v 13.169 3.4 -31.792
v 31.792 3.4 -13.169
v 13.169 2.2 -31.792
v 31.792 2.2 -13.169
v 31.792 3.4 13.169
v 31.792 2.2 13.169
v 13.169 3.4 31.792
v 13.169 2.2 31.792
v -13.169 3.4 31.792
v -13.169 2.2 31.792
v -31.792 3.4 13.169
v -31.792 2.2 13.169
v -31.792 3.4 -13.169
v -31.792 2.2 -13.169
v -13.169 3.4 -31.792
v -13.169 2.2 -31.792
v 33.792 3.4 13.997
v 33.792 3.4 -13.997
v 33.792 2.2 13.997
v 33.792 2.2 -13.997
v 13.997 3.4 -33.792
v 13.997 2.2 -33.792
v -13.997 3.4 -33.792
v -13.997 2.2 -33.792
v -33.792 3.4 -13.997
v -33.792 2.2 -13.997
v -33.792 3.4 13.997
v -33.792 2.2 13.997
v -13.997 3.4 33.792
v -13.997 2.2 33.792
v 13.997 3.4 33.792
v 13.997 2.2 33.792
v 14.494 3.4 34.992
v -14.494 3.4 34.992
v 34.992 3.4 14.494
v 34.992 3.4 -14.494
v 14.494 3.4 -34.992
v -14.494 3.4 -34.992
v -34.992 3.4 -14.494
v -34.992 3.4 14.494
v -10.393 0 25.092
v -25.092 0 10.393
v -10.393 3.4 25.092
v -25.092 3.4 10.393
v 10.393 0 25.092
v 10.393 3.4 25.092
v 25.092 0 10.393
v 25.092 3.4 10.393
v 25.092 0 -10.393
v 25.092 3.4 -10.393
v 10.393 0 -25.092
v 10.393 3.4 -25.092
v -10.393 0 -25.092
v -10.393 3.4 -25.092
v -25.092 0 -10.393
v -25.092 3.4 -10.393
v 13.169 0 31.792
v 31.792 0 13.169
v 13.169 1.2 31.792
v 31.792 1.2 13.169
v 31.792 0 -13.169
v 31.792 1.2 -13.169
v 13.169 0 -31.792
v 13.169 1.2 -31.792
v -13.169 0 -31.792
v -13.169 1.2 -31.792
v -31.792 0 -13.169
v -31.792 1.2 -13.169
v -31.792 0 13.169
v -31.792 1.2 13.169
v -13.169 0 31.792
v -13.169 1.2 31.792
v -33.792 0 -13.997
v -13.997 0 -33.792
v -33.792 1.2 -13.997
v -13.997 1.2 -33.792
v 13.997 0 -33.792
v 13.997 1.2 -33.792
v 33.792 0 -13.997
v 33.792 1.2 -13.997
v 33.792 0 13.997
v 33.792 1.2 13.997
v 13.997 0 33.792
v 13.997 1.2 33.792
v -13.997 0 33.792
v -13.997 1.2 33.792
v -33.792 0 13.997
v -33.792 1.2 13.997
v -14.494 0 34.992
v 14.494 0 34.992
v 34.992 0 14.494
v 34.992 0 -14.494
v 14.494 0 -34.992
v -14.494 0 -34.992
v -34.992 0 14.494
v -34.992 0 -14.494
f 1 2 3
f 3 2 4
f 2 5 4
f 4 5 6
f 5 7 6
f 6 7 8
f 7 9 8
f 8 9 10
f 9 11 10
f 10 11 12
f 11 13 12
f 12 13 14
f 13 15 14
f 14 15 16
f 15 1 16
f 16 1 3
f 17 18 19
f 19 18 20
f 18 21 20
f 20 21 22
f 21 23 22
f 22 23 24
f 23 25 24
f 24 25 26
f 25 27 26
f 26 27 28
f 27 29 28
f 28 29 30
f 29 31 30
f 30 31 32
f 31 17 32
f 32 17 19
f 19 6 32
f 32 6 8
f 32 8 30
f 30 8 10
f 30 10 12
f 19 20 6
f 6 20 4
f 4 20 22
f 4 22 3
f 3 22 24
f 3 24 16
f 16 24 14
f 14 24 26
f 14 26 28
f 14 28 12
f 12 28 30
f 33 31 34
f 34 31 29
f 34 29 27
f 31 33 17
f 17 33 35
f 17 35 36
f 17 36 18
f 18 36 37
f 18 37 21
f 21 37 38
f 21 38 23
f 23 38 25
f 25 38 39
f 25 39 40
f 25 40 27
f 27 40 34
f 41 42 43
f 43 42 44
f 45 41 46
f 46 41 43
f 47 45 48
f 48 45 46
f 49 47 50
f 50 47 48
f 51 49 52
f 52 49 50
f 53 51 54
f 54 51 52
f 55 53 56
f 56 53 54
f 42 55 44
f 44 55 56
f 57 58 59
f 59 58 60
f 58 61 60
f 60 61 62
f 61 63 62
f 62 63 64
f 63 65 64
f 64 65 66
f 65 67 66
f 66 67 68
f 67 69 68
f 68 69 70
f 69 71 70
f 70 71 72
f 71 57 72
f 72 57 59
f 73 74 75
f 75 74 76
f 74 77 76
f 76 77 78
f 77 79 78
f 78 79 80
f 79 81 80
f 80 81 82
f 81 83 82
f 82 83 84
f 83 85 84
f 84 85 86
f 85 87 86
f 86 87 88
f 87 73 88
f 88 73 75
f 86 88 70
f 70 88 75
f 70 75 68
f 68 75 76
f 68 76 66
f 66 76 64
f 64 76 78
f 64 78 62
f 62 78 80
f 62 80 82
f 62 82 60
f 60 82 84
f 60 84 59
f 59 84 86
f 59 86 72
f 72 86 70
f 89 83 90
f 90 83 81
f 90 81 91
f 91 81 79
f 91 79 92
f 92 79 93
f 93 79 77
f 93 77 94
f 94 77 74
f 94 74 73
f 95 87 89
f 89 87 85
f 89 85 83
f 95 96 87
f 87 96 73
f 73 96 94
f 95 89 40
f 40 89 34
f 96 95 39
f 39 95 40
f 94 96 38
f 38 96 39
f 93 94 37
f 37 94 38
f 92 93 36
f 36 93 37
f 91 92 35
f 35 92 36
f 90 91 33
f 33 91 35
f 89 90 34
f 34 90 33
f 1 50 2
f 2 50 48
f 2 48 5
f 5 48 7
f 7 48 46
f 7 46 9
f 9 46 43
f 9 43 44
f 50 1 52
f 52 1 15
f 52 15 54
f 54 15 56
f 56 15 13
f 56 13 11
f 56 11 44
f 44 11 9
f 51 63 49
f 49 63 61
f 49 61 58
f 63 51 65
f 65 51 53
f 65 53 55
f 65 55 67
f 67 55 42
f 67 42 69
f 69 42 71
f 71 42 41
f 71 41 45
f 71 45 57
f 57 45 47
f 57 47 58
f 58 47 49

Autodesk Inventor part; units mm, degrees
ref_plane "YZ Plane" through (0, 0, 0) normal (1, 0, 0) x (0, 1, 0)
ref_plane "XZ Plane" through (0, 0, 0) normal (0, 1, 0) x (-1, 0, 0)
ref_plane "XY Plane" through (0, 0, 0) normal (0, 0, 1) x (1, 0, 0)
sketch "스케치1" plane through (0, 0, 0) normal (0, 1, 0) x (-1, 0, 0)
  line L0 (-32.5919, 13.5) -> (-13.5, 32.5919)
  line L1 (-13.5, 32.5919) -> (13.5, 32.5919)
  line L2 (13.5, 32.5919) -> (32.5919, 13.5)
  line L3 (32.5919, 13.5) -> (32.5919, -13.5)
  line L4 (32.5919, -13.5) -> (13.5, -32.5919)
  line L5 (13.5, -32.5919) -> (-13.5, -32.5919)
  line L6 (-13.5, -32.5919) -> (-32.5919, -13.5)
  line L7 (-32.5919, -13.5) -> (-32.5919, 13.5)
  line L8 (34.9919, 14.4941) -> (34.9919, -14.4941)
  line L9 (34.9919, -14.4941) -> (14.4941, -34.9919)
  line L10 (14.4941, -34.9919) -> (-14.4941, -34.9919)
  line L11 (-14.4941, -34.9919) -> (-34.9919, -14.4941)
  line L12 (-34.9919, -14.4941) -> (-34.9919, 14.4941)
  line L13 (-34.9919, 14.4941) -> (-14.4941, 34.9919)
  line L14 (-14.4941, 34.9919) -> (14.4941, 34.9919)
  line L15 (14.4941, 34.9919) -> (34.9919, 14.4941)
  point P0 (0, 0)
  point P1 (0, 0)
  point P2 (0, 0)
  dimension "d0" = 27
  dimension "d1" = 2.4
extrude "돌출1" add sketch "스케치1" along normal blind 3.4 contours L0 L1 L2 L3 L4 L5 L6 L7 | L8 L9 L10 L11 L12 L13 L14 L15
sketch "스케치2" plane through (0, 3.4, 0) normal (0, 1, 0) x (1, 0, 0)
  line L0 (13.5, -32.5919) -> (-13.5, -32.5919)
  line L1 (-13.5, -32.5919) -> (-32.5919, -13.5)
  line L2 (-32.5919, -13.5) -> (-32.5919, 13.5)
  line L3 (-32.5919, 13.5) -> (-13.5, 32.5919)
  line L4 (-13.5, 32.5919) -> (13.5, 32.5919)
  line L5 (13.5, 32.5919) -> (32.5919, 13.5)
  line L6 (32.5919, 13.5) -> (32.5919, -13.5)
  line L7 (32.5919, -13.5) -> (13.5, -32.5919)
  line L8 (-13.9971, -33.7919) -> (-33.7919, -13.9971)
  line L9 (-33.7919, -13.9971) -> (-33.7919, 13.9971)
  line L10 (-33.7919, 13.9971) -> (-13.9971, 33.7919)
  line L11 (-13.9971, 33.7919) -> (13.9971, 33.7919)
  line L12 (13.9971, 33.7919) -> (33.7919, 13.9971)
  line L13 (33.7919, 13.9971) -> (33.7919, -13.9971)
  line L14 (33.7919, -13.9971) -> (13.9971, -33.7919)
  line L15 (13.9971, -33.7919) -> (-13.9971, -33.7919)
  line L16 (-13.1686, 31.7919) -> (13.1686, 31.7919)
  line L17 (13.1686, 31.7919) -> (31.7919, 13.1686)
  line L18 (31.7919, 13.1686) -> (31.7919, -13.1686)
  line L19 (31.7919, -13.1686) -> (13.1686, -31.7919)
  line L20 (13.1686, -31.7919) -> (-13.1686, -31.7919)
  line L21 (-13.1686, -31.7919) -> (-31.7919, -13.1686)
  line L22 (-31.7919, -13.1686) -> (-31.7919, 13.1686)
  line L23 (-31.7919, 13.1686) -> (-13.1686, 31.7919)
  point P0 (0, 0)
  point P1 (0, 0)
  point P2 (0, 0)
  point P3 (0, 0)
  dimension "d4" = 27
  dimension "d5" = 1.2
  dimension "d16" = 0.8
sketch "스케치3" plane through (0, 0, 0) normal (0, -1, 0) x (1, 0, 0)
  line L0 (-13.5, 32.5919) -> (13.5, 32.5919)
  line L1 (13.5, 32.5919) -> (32.5919, 13.5)
  line L2 (32.5919, 13.5) -> (32.5919, -13.5)
  line L3 (32.5919, -13.5) -> (13.5, -32.5919)
  line L4 (13.5, -32.5919) -> (-13.5, -32.5919)
  line L5 (-13.5, -32.5919) -> (-32.5919, -13.5)
  line L6 (-32.5919, -13.5) -> (-32.5919, 13.5)
  line L7 (-32.5919, 13.5) -> (-13.5, 32.5919)
  line L8 (-13.9971, 33.7919) -> (13.9971, 33.7919)
  line L9 (13.9971, 33.7919) -> (33.7919, 13.9971)
  line L10 (33.7919, 13.9971) -> (33.7919, -13.9971)
  line L11 (33.7919, -13.9971) -> (13.9971, -33.7919)
  line L12 (13.9971, -33.7919) -> (-13.9971, -33.7919)
  line L13 (-13.9971, -33.7919) -> (-33.7919, -13.9971)
  line L14 (-33.7919, -13.9971) -> (-33.7919, 13.9971)
  line L15 (-33.7919, 13.9971) -> (-13.9971, 33.7919)
  line L16 (-13.1686, 31.7919) -> (13.1686, 31.7919)
  line L17 (13.1686, 31.7919) -> (31.7919, 13.1686)
  line L18 (31.7919, 13.1686) -> (31.7919, -13.1686)
  line L19 (31.7919, -13.1686) -> (13.1686, -31.7919)
  line L20 (13.1686, -31.7919) -> (-13.1686, -31.7919)
  line L21 (-13.1686, -31.7919) -> (-31.7919, -13.1686)
  line L22 (-31.7919, -13.1686) -> (-31.7919, 13.1686)
  line L23 (-31.7919, 13.1686) -> (-13.1686, 31.7919)
  point P0 (0, 0)
  point P1 (0, 0)
  point P2 (0, 0)
  point P3 (0, 0)
  dimension "d8" = 27
  dimension "d9" = 1.2
  dimension "d19" = 0.8
extrude "돌출3" cut sketch "스케치3" against normal blind 1.2 contours L0 L1 L2 L3 L4 L5 L6 L7 | L8 L9 L10 L11 L12 L13 L14 L15
sketch "스케치4" plane through (0, 3.4, 0) normal (0, 1, 0) x (1, 0, 0)
  line L0 (10.3934, -25.0919) -> (-10.3934, -25.0919)
  line L1 (-10.3934, -25.0919) -> (-25.0919, -10.3934)
  line L2 (-25.0919, -10.3934) -> (-25.0919, 10.3934)
  line L3 (-25.0919, 10.3934) -> (-10.3934, 25.0919)
  line L4 (-10.3934, 25.0919) -> (10.3934, 25.0919)
  line L5 (10.3934, 25.0919) -> (25.0919, 10.3934)
  line L6 (25.0919, 10.3934) -> (25.0919, -10.3934)
  line L7 (25.0919, -10.3934) -> (10.3934, -25.0919)
  point P0 (0, 0)
  point P1 (0, 0)
  dimension "d20" = 20.7868
extrude "돌출4" cut sketch "스케치4" against normal blind 5
extrude "돌출5" cut sketch "스케치2" against normal blind 1.2 contours L0 L1 L2 L3 L4 L5 L6 L7 | L8 L9 L10 L11 L12 L13 L14 L15
properties part number "팔각형 OV-PAM 5패턴 링 - 틈 너비 수정"
